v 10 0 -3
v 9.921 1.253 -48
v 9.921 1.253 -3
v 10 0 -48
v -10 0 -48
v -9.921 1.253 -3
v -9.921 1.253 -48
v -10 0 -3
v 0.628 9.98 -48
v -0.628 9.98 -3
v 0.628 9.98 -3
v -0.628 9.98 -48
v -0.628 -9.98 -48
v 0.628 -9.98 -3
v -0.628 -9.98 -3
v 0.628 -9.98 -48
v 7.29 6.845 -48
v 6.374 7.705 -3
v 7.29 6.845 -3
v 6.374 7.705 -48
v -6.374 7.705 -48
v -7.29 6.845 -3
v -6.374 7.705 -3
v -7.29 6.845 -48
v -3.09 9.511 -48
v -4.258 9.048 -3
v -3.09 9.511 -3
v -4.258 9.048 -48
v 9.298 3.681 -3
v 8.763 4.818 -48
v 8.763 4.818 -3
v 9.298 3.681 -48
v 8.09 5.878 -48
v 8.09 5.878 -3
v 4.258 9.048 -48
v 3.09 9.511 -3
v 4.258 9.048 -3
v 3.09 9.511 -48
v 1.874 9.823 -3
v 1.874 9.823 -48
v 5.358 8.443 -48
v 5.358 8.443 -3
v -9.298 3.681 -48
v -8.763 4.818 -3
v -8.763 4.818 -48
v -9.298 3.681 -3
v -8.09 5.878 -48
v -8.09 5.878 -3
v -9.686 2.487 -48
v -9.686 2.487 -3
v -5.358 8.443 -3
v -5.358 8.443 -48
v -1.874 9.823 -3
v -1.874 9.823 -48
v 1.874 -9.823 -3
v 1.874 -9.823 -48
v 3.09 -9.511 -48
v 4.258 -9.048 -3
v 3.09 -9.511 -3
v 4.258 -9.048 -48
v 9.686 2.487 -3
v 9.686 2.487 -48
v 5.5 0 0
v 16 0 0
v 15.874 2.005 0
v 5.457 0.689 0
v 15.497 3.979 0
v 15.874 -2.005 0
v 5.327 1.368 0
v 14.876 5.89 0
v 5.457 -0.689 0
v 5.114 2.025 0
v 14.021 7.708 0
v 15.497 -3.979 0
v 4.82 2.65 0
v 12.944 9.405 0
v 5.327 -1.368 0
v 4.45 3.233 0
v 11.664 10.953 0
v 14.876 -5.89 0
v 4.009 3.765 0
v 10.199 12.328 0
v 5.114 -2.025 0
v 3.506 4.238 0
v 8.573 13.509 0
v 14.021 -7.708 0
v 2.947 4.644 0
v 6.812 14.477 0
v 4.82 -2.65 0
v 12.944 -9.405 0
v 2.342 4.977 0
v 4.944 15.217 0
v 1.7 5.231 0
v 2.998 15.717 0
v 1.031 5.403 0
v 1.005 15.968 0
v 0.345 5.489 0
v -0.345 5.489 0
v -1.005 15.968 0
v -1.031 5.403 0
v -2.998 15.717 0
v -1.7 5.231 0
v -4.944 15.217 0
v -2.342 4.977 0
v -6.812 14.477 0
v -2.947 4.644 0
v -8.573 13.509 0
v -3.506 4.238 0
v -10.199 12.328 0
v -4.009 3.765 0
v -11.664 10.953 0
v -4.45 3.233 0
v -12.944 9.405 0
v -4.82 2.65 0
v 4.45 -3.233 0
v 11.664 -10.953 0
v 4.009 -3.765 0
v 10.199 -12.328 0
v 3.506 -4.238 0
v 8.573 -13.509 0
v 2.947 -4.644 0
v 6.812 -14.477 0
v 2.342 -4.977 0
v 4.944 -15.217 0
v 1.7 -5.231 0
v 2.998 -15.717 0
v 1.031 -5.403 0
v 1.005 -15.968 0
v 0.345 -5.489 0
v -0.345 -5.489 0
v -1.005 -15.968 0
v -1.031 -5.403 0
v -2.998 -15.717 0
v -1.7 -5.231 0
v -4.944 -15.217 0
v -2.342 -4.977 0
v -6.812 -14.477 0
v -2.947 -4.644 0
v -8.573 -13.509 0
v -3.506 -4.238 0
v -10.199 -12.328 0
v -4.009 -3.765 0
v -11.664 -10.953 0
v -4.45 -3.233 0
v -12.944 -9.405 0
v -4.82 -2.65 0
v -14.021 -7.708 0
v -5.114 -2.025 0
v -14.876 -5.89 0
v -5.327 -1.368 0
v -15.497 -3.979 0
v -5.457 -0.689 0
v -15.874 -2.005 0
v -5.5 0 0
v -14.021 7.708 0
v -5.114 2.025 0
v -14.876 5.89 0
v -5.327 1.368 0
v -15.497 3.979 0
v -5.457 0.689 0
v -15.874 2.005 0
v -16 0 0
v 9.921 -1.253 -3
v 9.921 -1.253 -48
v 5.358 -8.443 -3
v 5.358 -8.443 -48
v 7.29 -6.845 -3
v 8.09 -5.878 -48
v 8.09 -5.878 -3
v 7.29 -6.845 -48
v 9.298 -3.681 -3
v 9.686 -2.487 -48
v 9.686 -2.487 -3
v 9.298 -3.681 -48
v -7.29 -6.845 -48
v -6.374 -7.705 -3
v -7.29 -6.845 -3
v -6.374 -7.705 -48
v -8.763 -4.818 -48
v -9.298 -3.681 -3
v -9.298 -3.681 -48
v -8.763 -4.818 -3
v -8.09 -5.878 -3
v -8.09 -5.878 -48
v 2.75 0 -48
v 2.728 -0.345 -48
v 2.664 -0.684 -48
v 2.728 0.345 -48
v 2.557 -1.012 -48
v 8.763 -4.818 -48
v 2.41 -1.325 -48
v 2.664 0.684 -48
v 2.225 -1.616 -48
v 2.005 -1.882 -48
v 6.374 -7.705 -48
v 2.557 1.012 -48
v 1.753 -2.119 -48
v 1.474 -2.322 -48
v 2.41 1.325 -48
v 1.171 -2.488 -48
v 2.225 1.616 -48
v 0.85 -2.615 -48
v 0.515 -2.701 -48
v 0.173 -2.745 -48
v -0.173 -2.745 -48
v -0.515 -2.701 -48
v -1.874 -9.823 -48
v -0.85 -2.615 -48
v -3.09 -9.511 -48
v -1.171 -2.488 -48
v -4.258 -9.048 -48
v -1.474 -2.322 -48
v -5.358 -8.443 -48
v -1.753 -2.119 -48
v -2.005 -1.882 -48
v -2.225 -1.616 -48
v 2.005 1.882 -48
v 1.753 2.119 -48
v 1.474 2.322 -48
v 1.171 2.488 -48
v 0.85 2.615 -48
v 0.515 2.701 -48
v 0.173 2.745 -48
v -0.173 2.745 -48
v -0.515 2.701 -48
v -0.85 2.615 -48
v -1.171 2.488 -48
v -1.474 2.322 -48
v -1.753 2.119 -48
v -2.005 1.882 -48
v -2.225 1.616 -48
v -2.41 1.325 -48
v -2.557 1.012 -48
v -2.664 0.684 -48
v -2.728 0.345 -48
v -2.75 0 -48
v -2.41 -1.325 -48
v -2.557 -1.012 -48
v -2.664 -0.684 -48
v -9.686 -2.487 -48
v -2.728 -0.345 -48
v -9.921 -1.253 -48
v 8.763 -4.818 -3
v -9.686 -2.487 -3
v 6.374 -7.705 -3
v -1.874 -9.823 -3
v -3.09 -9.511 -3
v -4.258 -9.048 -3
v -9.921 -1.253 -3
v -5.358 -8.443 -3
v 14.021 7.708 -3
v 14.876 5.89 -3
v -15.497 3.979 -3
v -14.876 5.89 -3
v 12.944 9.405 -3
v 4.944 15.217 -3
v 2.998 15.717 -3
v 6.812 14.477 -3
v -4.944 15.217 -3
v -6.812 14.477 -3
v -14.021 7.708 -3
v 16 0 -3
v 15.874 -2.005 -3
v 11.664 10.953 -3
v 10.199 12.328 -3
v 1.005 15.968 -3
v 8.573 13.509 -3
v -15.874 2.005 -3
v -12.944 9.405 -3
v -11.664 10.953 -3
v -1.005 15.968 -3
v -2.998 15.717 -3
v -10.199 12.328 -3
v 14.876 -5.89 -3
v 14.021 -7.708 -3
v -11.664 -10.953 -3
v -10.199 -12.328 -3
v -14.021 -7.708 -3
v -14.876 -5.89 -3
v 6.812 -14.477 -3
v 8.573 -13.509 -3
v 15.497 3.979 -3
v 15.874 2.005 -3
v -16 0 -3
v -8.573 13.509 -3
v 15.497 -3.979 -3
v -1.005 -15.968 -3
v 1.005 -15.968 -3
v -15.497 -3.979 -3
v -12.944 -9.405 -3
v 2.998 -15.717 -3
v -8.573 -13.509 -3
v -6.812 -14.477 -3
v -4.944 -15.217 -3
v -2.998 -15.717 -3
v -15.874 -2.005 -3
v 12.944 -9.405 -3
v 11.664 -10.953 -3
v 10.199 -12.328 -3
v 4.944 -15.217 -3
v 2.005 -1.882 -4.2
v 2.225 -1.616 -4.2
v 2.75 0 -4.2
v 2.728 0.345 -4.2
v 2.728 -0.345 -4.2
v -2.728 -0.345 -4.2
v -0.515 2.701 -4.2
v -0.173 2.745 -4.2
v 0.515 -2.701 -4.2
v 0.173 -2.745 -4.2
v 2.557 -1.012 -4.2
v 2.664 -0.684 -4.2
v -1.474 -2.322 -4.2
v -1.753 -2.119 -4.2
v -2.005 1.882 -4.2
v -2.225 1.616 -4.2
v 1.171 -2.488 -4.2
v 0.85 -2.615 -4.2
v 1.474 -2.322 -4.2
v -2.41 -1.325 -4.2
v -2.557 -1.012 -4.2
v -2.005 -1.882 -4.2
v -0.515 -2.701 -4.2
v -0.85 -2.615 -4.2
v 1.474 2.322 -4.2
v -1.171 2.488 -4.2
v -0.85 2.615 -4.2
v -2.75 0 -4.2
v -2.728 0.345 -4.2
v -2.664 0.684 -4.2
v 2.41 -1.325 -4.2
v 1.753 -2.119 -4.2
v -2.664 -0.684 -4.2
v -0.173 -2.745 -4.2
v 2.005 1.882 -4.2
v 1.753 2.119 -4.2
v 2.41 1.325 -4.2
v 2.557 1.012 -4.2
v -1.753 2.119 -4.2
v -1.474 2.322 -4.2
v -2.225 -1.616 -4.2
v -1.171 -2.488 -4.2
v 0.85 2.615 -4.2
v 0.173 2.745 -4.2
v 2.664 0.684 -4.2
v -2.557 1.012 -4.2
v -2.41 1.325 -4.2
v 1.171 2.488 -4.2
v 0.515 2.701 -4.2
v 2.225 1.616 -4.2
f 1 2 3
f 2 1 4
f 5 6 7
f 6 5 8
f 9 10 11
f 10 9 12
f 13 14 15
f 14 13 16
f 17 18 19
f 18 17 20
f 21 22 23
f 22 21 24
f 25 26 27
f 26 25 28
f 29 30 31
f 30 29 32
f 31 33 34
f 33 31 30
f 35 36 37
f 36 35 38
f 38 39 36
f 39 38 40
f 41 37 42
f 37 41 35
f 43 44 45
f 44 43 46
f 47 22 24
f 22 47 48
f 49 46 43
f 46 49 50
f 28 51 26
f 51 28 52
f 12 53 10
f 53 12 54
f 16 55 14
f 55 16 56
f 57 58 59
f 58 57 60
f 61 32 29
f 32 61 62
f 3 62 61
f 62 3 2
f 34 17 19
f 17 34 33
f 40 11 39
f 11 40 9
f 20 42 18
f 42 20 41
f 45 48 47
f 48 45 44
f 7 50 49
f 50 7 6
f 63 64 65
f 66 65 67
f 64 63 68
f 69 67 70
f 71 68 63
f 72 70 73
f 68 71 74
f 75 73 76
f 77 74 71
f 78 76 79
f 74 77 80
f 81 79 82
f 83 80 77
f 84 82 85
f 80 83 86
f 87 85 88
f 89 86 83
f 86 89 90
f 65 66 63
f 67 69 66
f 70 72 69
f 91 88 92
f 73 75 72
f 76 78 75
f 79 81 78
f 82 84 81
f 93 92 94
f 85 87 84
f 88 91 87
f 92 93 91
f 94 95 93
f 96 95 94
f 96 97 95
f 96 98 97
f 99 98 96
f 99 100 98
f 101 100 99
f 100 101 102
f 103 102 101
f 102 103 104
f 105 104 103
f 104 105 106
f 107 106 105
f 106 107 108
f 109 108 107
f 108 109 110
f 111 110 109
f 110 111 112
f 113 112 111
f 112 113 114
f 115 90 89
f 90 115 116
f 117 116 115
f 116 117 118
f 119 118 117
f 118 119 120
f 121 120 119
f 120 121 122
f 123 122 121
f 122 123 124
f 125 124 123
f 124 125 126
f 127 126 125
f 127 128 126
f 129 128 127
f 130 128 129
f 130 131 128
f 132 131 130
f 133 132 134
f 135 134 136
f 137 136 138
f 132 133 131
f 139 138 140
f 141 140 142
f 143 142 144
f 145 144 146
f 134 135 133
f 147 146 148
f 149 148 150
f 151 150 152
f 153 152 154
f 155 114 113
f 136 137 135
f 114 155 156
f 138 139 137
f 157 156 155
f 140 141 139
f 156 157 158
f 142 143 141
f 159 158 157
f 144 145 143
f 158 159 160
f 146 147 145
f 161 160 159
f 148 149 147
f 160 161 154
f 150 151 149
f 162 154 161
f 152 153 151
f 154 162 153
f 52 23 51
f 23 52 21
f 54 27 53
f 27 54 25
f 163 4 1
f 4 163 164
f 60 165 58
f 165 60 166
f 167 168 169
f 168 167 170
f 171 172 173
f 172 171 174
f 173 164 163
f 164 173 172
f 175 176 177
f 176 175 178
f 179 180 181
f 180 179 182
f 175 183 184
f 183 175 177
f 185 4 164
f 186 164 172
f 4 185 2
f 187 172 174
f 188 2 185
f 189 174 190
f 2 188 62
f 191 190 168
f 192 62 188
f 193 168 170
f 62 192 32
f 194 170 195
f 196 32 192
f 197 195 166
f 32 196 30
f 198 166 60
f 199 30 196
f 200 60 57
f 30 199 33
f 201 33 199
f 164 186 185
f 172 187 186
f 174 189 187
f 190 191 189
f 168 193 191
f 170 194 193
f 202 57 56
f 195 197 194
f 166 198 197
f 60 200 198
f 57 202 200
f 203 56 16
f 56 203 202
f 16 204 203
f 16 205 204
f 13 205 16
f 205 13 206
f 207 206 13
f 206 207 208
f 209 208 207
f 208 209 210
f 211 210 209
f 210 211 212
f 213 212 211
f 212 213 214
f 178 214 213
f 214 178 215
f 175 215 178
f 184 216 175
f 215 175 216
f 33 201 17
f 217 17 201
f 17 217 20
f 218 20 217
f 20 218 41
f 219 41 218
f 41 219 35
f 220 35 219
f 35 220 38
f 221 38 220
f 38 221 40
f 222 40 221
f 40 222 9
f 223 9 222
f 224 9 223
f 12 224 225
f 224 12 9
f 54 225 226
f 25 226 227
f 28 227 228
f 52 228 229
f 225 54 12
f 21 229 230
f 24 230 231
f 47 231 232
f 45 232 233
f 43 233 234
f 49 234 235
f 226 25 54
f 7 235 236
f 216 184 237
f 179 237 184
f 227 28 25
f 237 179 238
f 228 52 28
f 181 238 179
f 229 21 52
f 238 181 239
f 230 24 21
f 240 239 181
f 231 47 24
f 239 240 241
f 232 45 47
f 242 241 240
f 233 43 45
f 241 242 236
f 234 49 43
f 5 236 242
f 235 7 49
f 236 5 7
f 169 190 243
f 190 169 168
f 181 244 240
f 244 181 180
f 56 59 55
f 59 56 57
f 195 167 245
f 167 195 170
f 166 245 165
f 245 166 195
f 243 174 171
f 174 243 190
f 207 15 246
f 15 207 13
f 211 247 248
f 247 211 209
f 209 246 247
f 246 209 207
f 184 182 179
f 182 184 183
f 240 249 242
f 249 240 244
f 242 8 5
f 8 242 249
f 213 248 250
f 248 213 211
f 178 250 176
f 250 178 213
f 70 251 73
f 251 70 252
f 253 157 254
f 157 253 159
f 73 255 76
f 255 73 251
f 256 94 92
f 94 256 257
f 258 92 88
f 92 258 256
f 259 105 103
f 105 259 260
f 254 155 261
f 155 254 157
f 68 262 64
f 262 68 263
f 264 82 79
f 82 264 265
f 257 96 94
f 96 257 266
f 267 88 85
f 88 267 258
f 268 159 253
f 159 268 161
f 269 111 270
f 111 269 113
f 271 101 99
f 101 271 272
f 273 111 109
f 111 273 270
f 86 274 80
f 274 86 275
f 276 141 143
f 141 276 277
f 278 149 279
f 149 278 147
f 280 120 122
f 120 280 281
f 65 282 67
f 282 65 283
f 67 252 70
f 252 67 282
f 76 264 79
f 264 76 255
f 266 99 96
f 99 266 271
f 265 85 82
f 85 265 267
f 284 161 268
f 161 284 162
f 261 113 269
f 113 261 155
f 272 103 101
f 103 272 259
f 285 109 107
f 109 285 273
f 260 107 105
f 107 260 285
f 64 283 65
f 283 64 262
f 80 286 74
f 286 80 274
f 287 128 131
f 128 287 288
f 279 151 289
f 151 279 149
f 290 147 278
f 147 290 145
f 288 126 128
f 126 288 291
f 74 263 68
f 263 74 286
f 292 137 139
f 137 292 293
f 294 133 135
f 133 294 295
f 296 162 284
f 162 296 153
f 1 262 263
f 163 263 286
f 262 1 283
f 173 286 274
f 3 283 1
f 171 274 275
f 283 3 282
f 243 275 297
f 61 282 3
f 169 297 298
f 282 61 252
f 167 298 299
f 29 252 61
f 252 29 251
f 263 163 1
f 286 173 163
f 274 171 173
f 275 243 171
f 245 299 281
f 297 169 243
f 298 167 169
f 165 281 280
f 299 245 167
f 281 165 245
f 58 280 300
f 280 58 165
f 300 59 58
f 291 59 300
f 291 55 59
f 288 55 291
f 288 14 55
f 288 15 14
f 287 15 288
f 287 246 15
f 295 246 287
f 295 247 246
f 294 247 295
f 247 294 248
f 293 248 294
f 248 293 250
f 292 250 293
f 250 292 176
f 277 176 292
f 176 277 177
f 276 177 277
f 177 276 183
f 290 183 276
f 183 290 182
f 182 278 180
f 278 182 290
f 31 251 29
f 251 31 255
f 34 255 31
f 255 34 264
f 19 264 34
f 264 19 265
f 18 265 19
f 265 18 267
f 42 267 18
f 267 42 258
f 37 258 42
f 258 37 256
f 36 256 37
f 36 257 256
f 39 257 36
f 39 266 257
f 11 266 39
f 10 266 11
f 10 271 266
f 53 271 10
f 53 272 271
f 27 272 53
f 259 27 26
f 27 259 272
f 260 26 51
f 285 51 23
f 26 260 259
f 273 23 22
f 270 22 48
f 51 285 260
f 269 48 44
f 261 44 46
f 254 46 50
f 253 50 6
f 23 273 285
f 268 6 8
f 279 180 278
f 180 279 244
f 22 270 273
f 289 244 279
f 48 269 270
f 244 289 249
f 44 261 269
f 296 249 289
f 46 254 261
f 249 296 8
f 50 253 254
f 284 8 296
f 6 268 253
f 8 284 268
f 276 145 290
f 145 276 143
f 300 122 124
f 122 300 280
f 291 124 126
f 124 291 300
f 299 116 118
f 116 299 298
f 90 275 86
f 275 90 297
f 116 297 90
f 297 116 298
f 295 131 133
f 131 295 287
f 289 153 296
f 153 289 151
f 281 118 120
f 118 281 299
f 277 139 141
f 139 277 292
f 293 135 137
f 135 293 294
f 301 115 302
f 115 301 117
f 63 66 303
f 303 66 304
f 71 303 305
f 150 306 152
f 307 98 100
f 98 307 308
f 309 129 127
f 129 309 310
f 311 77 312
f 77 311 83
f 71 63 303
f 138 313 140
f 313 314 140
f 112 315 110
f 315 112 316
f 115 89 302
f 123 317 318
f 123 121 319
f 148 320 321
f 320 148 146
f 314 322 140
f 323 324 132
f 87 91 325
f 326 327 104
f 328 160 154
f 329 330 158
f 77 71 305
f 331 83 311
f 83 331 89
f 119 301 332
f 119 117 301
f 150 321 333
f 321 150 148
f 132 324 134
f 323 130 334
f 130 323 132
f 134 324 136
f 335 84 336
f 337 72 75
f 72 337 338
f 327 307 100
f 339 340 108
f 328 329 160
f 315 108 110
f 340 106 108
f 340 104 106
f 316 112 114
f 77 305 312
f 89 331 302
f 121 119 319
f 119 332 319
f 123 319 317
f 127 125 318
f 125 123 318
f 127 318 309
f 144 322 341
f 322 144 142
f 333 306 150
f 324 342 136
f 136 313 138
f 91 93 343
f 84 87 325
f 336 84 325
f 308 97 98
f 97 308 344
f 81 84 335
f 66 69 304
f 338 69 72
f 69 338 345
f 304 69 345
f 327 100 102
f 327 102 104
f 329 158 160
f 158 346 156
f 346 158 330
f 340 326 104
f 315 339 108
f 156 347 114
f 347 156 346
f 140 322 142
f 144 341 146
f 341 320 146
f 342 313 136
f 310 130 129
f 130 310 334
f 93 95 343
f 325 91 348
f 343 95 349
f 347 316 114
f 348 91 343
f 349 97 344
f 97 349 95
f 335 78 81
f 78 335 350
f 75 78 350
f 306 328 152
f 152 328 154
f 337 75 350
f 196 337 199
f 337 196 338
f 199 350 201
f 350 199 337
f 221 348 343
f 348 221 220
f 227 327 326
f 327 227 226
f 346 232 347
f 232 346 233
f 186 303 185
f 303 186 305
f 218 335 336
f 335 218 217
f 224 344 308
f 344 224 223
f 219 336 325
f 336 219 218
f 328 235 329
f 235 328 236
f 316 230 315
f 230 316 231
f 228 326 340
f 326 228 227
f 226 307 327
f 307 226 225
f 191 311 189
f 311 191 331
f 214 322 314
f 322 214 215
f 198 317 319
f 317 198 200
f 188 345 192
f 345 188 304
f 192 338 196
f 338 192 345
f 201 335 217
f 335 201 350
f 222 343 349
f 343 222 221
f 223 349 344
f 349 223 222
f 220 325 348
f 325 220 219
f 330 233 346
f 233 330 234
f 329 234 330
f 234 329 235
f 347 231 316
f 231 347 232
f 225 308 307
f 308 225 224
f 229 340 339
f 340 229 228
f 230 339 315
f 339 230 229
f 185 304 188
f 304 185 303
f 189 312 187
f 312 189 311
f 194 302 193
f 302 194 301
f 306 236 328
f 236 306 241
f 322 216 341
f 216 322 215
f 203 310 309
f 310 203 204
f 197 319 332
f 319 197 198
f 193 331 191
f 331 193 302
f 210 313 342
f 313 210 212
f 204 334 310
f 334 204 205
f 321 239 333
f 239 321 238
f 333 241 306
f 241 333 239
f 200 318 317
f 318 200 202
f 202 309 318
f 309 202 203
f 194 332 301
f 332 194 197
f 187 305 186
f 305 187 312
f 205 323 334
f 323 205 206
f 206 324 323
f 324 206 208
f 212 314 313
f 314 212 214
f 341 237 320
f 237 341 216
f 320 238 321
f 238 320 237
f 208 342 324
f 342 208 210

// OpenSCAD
$fn = 50;


difference() {
	union() {
		translate(v = [0, 0, -48.0000000000]) {
			cylinder(h = 48, r = 10.0000000000);
		}
		translate(v = [0, 0, -3.0000000000]) {
			cylinder(h = 3, r = 16.0000000000);
		}
	}
	union() {
		translate(v = [0, 0, 0]) {
			rotate(a = [0, 0, 0]) {
				difference() {
					union() {
						#translate(v = [0, 0, -48.0000000000]) {
							cylinder(h = 48, r = 2.2500000000);
						}
						#translate(v = [0, 0, -4.2000000000]) {
							cylinder(h = 4.2000000000, r = 10.0000000000, r1 = 2.7500000000, r2 = 5.5000000000);
						}
						#translate(v = [0, 0, -48.0000000000]) {
							cylinder(h = 48, r = 2.7500000000);
						}
						#translate(v = [0, 0, -48.0000000000]) {
							cylinder(h = 48, r = 2.2500000000);
						}
					}
					union();
				}
			}
		}
	}
}
